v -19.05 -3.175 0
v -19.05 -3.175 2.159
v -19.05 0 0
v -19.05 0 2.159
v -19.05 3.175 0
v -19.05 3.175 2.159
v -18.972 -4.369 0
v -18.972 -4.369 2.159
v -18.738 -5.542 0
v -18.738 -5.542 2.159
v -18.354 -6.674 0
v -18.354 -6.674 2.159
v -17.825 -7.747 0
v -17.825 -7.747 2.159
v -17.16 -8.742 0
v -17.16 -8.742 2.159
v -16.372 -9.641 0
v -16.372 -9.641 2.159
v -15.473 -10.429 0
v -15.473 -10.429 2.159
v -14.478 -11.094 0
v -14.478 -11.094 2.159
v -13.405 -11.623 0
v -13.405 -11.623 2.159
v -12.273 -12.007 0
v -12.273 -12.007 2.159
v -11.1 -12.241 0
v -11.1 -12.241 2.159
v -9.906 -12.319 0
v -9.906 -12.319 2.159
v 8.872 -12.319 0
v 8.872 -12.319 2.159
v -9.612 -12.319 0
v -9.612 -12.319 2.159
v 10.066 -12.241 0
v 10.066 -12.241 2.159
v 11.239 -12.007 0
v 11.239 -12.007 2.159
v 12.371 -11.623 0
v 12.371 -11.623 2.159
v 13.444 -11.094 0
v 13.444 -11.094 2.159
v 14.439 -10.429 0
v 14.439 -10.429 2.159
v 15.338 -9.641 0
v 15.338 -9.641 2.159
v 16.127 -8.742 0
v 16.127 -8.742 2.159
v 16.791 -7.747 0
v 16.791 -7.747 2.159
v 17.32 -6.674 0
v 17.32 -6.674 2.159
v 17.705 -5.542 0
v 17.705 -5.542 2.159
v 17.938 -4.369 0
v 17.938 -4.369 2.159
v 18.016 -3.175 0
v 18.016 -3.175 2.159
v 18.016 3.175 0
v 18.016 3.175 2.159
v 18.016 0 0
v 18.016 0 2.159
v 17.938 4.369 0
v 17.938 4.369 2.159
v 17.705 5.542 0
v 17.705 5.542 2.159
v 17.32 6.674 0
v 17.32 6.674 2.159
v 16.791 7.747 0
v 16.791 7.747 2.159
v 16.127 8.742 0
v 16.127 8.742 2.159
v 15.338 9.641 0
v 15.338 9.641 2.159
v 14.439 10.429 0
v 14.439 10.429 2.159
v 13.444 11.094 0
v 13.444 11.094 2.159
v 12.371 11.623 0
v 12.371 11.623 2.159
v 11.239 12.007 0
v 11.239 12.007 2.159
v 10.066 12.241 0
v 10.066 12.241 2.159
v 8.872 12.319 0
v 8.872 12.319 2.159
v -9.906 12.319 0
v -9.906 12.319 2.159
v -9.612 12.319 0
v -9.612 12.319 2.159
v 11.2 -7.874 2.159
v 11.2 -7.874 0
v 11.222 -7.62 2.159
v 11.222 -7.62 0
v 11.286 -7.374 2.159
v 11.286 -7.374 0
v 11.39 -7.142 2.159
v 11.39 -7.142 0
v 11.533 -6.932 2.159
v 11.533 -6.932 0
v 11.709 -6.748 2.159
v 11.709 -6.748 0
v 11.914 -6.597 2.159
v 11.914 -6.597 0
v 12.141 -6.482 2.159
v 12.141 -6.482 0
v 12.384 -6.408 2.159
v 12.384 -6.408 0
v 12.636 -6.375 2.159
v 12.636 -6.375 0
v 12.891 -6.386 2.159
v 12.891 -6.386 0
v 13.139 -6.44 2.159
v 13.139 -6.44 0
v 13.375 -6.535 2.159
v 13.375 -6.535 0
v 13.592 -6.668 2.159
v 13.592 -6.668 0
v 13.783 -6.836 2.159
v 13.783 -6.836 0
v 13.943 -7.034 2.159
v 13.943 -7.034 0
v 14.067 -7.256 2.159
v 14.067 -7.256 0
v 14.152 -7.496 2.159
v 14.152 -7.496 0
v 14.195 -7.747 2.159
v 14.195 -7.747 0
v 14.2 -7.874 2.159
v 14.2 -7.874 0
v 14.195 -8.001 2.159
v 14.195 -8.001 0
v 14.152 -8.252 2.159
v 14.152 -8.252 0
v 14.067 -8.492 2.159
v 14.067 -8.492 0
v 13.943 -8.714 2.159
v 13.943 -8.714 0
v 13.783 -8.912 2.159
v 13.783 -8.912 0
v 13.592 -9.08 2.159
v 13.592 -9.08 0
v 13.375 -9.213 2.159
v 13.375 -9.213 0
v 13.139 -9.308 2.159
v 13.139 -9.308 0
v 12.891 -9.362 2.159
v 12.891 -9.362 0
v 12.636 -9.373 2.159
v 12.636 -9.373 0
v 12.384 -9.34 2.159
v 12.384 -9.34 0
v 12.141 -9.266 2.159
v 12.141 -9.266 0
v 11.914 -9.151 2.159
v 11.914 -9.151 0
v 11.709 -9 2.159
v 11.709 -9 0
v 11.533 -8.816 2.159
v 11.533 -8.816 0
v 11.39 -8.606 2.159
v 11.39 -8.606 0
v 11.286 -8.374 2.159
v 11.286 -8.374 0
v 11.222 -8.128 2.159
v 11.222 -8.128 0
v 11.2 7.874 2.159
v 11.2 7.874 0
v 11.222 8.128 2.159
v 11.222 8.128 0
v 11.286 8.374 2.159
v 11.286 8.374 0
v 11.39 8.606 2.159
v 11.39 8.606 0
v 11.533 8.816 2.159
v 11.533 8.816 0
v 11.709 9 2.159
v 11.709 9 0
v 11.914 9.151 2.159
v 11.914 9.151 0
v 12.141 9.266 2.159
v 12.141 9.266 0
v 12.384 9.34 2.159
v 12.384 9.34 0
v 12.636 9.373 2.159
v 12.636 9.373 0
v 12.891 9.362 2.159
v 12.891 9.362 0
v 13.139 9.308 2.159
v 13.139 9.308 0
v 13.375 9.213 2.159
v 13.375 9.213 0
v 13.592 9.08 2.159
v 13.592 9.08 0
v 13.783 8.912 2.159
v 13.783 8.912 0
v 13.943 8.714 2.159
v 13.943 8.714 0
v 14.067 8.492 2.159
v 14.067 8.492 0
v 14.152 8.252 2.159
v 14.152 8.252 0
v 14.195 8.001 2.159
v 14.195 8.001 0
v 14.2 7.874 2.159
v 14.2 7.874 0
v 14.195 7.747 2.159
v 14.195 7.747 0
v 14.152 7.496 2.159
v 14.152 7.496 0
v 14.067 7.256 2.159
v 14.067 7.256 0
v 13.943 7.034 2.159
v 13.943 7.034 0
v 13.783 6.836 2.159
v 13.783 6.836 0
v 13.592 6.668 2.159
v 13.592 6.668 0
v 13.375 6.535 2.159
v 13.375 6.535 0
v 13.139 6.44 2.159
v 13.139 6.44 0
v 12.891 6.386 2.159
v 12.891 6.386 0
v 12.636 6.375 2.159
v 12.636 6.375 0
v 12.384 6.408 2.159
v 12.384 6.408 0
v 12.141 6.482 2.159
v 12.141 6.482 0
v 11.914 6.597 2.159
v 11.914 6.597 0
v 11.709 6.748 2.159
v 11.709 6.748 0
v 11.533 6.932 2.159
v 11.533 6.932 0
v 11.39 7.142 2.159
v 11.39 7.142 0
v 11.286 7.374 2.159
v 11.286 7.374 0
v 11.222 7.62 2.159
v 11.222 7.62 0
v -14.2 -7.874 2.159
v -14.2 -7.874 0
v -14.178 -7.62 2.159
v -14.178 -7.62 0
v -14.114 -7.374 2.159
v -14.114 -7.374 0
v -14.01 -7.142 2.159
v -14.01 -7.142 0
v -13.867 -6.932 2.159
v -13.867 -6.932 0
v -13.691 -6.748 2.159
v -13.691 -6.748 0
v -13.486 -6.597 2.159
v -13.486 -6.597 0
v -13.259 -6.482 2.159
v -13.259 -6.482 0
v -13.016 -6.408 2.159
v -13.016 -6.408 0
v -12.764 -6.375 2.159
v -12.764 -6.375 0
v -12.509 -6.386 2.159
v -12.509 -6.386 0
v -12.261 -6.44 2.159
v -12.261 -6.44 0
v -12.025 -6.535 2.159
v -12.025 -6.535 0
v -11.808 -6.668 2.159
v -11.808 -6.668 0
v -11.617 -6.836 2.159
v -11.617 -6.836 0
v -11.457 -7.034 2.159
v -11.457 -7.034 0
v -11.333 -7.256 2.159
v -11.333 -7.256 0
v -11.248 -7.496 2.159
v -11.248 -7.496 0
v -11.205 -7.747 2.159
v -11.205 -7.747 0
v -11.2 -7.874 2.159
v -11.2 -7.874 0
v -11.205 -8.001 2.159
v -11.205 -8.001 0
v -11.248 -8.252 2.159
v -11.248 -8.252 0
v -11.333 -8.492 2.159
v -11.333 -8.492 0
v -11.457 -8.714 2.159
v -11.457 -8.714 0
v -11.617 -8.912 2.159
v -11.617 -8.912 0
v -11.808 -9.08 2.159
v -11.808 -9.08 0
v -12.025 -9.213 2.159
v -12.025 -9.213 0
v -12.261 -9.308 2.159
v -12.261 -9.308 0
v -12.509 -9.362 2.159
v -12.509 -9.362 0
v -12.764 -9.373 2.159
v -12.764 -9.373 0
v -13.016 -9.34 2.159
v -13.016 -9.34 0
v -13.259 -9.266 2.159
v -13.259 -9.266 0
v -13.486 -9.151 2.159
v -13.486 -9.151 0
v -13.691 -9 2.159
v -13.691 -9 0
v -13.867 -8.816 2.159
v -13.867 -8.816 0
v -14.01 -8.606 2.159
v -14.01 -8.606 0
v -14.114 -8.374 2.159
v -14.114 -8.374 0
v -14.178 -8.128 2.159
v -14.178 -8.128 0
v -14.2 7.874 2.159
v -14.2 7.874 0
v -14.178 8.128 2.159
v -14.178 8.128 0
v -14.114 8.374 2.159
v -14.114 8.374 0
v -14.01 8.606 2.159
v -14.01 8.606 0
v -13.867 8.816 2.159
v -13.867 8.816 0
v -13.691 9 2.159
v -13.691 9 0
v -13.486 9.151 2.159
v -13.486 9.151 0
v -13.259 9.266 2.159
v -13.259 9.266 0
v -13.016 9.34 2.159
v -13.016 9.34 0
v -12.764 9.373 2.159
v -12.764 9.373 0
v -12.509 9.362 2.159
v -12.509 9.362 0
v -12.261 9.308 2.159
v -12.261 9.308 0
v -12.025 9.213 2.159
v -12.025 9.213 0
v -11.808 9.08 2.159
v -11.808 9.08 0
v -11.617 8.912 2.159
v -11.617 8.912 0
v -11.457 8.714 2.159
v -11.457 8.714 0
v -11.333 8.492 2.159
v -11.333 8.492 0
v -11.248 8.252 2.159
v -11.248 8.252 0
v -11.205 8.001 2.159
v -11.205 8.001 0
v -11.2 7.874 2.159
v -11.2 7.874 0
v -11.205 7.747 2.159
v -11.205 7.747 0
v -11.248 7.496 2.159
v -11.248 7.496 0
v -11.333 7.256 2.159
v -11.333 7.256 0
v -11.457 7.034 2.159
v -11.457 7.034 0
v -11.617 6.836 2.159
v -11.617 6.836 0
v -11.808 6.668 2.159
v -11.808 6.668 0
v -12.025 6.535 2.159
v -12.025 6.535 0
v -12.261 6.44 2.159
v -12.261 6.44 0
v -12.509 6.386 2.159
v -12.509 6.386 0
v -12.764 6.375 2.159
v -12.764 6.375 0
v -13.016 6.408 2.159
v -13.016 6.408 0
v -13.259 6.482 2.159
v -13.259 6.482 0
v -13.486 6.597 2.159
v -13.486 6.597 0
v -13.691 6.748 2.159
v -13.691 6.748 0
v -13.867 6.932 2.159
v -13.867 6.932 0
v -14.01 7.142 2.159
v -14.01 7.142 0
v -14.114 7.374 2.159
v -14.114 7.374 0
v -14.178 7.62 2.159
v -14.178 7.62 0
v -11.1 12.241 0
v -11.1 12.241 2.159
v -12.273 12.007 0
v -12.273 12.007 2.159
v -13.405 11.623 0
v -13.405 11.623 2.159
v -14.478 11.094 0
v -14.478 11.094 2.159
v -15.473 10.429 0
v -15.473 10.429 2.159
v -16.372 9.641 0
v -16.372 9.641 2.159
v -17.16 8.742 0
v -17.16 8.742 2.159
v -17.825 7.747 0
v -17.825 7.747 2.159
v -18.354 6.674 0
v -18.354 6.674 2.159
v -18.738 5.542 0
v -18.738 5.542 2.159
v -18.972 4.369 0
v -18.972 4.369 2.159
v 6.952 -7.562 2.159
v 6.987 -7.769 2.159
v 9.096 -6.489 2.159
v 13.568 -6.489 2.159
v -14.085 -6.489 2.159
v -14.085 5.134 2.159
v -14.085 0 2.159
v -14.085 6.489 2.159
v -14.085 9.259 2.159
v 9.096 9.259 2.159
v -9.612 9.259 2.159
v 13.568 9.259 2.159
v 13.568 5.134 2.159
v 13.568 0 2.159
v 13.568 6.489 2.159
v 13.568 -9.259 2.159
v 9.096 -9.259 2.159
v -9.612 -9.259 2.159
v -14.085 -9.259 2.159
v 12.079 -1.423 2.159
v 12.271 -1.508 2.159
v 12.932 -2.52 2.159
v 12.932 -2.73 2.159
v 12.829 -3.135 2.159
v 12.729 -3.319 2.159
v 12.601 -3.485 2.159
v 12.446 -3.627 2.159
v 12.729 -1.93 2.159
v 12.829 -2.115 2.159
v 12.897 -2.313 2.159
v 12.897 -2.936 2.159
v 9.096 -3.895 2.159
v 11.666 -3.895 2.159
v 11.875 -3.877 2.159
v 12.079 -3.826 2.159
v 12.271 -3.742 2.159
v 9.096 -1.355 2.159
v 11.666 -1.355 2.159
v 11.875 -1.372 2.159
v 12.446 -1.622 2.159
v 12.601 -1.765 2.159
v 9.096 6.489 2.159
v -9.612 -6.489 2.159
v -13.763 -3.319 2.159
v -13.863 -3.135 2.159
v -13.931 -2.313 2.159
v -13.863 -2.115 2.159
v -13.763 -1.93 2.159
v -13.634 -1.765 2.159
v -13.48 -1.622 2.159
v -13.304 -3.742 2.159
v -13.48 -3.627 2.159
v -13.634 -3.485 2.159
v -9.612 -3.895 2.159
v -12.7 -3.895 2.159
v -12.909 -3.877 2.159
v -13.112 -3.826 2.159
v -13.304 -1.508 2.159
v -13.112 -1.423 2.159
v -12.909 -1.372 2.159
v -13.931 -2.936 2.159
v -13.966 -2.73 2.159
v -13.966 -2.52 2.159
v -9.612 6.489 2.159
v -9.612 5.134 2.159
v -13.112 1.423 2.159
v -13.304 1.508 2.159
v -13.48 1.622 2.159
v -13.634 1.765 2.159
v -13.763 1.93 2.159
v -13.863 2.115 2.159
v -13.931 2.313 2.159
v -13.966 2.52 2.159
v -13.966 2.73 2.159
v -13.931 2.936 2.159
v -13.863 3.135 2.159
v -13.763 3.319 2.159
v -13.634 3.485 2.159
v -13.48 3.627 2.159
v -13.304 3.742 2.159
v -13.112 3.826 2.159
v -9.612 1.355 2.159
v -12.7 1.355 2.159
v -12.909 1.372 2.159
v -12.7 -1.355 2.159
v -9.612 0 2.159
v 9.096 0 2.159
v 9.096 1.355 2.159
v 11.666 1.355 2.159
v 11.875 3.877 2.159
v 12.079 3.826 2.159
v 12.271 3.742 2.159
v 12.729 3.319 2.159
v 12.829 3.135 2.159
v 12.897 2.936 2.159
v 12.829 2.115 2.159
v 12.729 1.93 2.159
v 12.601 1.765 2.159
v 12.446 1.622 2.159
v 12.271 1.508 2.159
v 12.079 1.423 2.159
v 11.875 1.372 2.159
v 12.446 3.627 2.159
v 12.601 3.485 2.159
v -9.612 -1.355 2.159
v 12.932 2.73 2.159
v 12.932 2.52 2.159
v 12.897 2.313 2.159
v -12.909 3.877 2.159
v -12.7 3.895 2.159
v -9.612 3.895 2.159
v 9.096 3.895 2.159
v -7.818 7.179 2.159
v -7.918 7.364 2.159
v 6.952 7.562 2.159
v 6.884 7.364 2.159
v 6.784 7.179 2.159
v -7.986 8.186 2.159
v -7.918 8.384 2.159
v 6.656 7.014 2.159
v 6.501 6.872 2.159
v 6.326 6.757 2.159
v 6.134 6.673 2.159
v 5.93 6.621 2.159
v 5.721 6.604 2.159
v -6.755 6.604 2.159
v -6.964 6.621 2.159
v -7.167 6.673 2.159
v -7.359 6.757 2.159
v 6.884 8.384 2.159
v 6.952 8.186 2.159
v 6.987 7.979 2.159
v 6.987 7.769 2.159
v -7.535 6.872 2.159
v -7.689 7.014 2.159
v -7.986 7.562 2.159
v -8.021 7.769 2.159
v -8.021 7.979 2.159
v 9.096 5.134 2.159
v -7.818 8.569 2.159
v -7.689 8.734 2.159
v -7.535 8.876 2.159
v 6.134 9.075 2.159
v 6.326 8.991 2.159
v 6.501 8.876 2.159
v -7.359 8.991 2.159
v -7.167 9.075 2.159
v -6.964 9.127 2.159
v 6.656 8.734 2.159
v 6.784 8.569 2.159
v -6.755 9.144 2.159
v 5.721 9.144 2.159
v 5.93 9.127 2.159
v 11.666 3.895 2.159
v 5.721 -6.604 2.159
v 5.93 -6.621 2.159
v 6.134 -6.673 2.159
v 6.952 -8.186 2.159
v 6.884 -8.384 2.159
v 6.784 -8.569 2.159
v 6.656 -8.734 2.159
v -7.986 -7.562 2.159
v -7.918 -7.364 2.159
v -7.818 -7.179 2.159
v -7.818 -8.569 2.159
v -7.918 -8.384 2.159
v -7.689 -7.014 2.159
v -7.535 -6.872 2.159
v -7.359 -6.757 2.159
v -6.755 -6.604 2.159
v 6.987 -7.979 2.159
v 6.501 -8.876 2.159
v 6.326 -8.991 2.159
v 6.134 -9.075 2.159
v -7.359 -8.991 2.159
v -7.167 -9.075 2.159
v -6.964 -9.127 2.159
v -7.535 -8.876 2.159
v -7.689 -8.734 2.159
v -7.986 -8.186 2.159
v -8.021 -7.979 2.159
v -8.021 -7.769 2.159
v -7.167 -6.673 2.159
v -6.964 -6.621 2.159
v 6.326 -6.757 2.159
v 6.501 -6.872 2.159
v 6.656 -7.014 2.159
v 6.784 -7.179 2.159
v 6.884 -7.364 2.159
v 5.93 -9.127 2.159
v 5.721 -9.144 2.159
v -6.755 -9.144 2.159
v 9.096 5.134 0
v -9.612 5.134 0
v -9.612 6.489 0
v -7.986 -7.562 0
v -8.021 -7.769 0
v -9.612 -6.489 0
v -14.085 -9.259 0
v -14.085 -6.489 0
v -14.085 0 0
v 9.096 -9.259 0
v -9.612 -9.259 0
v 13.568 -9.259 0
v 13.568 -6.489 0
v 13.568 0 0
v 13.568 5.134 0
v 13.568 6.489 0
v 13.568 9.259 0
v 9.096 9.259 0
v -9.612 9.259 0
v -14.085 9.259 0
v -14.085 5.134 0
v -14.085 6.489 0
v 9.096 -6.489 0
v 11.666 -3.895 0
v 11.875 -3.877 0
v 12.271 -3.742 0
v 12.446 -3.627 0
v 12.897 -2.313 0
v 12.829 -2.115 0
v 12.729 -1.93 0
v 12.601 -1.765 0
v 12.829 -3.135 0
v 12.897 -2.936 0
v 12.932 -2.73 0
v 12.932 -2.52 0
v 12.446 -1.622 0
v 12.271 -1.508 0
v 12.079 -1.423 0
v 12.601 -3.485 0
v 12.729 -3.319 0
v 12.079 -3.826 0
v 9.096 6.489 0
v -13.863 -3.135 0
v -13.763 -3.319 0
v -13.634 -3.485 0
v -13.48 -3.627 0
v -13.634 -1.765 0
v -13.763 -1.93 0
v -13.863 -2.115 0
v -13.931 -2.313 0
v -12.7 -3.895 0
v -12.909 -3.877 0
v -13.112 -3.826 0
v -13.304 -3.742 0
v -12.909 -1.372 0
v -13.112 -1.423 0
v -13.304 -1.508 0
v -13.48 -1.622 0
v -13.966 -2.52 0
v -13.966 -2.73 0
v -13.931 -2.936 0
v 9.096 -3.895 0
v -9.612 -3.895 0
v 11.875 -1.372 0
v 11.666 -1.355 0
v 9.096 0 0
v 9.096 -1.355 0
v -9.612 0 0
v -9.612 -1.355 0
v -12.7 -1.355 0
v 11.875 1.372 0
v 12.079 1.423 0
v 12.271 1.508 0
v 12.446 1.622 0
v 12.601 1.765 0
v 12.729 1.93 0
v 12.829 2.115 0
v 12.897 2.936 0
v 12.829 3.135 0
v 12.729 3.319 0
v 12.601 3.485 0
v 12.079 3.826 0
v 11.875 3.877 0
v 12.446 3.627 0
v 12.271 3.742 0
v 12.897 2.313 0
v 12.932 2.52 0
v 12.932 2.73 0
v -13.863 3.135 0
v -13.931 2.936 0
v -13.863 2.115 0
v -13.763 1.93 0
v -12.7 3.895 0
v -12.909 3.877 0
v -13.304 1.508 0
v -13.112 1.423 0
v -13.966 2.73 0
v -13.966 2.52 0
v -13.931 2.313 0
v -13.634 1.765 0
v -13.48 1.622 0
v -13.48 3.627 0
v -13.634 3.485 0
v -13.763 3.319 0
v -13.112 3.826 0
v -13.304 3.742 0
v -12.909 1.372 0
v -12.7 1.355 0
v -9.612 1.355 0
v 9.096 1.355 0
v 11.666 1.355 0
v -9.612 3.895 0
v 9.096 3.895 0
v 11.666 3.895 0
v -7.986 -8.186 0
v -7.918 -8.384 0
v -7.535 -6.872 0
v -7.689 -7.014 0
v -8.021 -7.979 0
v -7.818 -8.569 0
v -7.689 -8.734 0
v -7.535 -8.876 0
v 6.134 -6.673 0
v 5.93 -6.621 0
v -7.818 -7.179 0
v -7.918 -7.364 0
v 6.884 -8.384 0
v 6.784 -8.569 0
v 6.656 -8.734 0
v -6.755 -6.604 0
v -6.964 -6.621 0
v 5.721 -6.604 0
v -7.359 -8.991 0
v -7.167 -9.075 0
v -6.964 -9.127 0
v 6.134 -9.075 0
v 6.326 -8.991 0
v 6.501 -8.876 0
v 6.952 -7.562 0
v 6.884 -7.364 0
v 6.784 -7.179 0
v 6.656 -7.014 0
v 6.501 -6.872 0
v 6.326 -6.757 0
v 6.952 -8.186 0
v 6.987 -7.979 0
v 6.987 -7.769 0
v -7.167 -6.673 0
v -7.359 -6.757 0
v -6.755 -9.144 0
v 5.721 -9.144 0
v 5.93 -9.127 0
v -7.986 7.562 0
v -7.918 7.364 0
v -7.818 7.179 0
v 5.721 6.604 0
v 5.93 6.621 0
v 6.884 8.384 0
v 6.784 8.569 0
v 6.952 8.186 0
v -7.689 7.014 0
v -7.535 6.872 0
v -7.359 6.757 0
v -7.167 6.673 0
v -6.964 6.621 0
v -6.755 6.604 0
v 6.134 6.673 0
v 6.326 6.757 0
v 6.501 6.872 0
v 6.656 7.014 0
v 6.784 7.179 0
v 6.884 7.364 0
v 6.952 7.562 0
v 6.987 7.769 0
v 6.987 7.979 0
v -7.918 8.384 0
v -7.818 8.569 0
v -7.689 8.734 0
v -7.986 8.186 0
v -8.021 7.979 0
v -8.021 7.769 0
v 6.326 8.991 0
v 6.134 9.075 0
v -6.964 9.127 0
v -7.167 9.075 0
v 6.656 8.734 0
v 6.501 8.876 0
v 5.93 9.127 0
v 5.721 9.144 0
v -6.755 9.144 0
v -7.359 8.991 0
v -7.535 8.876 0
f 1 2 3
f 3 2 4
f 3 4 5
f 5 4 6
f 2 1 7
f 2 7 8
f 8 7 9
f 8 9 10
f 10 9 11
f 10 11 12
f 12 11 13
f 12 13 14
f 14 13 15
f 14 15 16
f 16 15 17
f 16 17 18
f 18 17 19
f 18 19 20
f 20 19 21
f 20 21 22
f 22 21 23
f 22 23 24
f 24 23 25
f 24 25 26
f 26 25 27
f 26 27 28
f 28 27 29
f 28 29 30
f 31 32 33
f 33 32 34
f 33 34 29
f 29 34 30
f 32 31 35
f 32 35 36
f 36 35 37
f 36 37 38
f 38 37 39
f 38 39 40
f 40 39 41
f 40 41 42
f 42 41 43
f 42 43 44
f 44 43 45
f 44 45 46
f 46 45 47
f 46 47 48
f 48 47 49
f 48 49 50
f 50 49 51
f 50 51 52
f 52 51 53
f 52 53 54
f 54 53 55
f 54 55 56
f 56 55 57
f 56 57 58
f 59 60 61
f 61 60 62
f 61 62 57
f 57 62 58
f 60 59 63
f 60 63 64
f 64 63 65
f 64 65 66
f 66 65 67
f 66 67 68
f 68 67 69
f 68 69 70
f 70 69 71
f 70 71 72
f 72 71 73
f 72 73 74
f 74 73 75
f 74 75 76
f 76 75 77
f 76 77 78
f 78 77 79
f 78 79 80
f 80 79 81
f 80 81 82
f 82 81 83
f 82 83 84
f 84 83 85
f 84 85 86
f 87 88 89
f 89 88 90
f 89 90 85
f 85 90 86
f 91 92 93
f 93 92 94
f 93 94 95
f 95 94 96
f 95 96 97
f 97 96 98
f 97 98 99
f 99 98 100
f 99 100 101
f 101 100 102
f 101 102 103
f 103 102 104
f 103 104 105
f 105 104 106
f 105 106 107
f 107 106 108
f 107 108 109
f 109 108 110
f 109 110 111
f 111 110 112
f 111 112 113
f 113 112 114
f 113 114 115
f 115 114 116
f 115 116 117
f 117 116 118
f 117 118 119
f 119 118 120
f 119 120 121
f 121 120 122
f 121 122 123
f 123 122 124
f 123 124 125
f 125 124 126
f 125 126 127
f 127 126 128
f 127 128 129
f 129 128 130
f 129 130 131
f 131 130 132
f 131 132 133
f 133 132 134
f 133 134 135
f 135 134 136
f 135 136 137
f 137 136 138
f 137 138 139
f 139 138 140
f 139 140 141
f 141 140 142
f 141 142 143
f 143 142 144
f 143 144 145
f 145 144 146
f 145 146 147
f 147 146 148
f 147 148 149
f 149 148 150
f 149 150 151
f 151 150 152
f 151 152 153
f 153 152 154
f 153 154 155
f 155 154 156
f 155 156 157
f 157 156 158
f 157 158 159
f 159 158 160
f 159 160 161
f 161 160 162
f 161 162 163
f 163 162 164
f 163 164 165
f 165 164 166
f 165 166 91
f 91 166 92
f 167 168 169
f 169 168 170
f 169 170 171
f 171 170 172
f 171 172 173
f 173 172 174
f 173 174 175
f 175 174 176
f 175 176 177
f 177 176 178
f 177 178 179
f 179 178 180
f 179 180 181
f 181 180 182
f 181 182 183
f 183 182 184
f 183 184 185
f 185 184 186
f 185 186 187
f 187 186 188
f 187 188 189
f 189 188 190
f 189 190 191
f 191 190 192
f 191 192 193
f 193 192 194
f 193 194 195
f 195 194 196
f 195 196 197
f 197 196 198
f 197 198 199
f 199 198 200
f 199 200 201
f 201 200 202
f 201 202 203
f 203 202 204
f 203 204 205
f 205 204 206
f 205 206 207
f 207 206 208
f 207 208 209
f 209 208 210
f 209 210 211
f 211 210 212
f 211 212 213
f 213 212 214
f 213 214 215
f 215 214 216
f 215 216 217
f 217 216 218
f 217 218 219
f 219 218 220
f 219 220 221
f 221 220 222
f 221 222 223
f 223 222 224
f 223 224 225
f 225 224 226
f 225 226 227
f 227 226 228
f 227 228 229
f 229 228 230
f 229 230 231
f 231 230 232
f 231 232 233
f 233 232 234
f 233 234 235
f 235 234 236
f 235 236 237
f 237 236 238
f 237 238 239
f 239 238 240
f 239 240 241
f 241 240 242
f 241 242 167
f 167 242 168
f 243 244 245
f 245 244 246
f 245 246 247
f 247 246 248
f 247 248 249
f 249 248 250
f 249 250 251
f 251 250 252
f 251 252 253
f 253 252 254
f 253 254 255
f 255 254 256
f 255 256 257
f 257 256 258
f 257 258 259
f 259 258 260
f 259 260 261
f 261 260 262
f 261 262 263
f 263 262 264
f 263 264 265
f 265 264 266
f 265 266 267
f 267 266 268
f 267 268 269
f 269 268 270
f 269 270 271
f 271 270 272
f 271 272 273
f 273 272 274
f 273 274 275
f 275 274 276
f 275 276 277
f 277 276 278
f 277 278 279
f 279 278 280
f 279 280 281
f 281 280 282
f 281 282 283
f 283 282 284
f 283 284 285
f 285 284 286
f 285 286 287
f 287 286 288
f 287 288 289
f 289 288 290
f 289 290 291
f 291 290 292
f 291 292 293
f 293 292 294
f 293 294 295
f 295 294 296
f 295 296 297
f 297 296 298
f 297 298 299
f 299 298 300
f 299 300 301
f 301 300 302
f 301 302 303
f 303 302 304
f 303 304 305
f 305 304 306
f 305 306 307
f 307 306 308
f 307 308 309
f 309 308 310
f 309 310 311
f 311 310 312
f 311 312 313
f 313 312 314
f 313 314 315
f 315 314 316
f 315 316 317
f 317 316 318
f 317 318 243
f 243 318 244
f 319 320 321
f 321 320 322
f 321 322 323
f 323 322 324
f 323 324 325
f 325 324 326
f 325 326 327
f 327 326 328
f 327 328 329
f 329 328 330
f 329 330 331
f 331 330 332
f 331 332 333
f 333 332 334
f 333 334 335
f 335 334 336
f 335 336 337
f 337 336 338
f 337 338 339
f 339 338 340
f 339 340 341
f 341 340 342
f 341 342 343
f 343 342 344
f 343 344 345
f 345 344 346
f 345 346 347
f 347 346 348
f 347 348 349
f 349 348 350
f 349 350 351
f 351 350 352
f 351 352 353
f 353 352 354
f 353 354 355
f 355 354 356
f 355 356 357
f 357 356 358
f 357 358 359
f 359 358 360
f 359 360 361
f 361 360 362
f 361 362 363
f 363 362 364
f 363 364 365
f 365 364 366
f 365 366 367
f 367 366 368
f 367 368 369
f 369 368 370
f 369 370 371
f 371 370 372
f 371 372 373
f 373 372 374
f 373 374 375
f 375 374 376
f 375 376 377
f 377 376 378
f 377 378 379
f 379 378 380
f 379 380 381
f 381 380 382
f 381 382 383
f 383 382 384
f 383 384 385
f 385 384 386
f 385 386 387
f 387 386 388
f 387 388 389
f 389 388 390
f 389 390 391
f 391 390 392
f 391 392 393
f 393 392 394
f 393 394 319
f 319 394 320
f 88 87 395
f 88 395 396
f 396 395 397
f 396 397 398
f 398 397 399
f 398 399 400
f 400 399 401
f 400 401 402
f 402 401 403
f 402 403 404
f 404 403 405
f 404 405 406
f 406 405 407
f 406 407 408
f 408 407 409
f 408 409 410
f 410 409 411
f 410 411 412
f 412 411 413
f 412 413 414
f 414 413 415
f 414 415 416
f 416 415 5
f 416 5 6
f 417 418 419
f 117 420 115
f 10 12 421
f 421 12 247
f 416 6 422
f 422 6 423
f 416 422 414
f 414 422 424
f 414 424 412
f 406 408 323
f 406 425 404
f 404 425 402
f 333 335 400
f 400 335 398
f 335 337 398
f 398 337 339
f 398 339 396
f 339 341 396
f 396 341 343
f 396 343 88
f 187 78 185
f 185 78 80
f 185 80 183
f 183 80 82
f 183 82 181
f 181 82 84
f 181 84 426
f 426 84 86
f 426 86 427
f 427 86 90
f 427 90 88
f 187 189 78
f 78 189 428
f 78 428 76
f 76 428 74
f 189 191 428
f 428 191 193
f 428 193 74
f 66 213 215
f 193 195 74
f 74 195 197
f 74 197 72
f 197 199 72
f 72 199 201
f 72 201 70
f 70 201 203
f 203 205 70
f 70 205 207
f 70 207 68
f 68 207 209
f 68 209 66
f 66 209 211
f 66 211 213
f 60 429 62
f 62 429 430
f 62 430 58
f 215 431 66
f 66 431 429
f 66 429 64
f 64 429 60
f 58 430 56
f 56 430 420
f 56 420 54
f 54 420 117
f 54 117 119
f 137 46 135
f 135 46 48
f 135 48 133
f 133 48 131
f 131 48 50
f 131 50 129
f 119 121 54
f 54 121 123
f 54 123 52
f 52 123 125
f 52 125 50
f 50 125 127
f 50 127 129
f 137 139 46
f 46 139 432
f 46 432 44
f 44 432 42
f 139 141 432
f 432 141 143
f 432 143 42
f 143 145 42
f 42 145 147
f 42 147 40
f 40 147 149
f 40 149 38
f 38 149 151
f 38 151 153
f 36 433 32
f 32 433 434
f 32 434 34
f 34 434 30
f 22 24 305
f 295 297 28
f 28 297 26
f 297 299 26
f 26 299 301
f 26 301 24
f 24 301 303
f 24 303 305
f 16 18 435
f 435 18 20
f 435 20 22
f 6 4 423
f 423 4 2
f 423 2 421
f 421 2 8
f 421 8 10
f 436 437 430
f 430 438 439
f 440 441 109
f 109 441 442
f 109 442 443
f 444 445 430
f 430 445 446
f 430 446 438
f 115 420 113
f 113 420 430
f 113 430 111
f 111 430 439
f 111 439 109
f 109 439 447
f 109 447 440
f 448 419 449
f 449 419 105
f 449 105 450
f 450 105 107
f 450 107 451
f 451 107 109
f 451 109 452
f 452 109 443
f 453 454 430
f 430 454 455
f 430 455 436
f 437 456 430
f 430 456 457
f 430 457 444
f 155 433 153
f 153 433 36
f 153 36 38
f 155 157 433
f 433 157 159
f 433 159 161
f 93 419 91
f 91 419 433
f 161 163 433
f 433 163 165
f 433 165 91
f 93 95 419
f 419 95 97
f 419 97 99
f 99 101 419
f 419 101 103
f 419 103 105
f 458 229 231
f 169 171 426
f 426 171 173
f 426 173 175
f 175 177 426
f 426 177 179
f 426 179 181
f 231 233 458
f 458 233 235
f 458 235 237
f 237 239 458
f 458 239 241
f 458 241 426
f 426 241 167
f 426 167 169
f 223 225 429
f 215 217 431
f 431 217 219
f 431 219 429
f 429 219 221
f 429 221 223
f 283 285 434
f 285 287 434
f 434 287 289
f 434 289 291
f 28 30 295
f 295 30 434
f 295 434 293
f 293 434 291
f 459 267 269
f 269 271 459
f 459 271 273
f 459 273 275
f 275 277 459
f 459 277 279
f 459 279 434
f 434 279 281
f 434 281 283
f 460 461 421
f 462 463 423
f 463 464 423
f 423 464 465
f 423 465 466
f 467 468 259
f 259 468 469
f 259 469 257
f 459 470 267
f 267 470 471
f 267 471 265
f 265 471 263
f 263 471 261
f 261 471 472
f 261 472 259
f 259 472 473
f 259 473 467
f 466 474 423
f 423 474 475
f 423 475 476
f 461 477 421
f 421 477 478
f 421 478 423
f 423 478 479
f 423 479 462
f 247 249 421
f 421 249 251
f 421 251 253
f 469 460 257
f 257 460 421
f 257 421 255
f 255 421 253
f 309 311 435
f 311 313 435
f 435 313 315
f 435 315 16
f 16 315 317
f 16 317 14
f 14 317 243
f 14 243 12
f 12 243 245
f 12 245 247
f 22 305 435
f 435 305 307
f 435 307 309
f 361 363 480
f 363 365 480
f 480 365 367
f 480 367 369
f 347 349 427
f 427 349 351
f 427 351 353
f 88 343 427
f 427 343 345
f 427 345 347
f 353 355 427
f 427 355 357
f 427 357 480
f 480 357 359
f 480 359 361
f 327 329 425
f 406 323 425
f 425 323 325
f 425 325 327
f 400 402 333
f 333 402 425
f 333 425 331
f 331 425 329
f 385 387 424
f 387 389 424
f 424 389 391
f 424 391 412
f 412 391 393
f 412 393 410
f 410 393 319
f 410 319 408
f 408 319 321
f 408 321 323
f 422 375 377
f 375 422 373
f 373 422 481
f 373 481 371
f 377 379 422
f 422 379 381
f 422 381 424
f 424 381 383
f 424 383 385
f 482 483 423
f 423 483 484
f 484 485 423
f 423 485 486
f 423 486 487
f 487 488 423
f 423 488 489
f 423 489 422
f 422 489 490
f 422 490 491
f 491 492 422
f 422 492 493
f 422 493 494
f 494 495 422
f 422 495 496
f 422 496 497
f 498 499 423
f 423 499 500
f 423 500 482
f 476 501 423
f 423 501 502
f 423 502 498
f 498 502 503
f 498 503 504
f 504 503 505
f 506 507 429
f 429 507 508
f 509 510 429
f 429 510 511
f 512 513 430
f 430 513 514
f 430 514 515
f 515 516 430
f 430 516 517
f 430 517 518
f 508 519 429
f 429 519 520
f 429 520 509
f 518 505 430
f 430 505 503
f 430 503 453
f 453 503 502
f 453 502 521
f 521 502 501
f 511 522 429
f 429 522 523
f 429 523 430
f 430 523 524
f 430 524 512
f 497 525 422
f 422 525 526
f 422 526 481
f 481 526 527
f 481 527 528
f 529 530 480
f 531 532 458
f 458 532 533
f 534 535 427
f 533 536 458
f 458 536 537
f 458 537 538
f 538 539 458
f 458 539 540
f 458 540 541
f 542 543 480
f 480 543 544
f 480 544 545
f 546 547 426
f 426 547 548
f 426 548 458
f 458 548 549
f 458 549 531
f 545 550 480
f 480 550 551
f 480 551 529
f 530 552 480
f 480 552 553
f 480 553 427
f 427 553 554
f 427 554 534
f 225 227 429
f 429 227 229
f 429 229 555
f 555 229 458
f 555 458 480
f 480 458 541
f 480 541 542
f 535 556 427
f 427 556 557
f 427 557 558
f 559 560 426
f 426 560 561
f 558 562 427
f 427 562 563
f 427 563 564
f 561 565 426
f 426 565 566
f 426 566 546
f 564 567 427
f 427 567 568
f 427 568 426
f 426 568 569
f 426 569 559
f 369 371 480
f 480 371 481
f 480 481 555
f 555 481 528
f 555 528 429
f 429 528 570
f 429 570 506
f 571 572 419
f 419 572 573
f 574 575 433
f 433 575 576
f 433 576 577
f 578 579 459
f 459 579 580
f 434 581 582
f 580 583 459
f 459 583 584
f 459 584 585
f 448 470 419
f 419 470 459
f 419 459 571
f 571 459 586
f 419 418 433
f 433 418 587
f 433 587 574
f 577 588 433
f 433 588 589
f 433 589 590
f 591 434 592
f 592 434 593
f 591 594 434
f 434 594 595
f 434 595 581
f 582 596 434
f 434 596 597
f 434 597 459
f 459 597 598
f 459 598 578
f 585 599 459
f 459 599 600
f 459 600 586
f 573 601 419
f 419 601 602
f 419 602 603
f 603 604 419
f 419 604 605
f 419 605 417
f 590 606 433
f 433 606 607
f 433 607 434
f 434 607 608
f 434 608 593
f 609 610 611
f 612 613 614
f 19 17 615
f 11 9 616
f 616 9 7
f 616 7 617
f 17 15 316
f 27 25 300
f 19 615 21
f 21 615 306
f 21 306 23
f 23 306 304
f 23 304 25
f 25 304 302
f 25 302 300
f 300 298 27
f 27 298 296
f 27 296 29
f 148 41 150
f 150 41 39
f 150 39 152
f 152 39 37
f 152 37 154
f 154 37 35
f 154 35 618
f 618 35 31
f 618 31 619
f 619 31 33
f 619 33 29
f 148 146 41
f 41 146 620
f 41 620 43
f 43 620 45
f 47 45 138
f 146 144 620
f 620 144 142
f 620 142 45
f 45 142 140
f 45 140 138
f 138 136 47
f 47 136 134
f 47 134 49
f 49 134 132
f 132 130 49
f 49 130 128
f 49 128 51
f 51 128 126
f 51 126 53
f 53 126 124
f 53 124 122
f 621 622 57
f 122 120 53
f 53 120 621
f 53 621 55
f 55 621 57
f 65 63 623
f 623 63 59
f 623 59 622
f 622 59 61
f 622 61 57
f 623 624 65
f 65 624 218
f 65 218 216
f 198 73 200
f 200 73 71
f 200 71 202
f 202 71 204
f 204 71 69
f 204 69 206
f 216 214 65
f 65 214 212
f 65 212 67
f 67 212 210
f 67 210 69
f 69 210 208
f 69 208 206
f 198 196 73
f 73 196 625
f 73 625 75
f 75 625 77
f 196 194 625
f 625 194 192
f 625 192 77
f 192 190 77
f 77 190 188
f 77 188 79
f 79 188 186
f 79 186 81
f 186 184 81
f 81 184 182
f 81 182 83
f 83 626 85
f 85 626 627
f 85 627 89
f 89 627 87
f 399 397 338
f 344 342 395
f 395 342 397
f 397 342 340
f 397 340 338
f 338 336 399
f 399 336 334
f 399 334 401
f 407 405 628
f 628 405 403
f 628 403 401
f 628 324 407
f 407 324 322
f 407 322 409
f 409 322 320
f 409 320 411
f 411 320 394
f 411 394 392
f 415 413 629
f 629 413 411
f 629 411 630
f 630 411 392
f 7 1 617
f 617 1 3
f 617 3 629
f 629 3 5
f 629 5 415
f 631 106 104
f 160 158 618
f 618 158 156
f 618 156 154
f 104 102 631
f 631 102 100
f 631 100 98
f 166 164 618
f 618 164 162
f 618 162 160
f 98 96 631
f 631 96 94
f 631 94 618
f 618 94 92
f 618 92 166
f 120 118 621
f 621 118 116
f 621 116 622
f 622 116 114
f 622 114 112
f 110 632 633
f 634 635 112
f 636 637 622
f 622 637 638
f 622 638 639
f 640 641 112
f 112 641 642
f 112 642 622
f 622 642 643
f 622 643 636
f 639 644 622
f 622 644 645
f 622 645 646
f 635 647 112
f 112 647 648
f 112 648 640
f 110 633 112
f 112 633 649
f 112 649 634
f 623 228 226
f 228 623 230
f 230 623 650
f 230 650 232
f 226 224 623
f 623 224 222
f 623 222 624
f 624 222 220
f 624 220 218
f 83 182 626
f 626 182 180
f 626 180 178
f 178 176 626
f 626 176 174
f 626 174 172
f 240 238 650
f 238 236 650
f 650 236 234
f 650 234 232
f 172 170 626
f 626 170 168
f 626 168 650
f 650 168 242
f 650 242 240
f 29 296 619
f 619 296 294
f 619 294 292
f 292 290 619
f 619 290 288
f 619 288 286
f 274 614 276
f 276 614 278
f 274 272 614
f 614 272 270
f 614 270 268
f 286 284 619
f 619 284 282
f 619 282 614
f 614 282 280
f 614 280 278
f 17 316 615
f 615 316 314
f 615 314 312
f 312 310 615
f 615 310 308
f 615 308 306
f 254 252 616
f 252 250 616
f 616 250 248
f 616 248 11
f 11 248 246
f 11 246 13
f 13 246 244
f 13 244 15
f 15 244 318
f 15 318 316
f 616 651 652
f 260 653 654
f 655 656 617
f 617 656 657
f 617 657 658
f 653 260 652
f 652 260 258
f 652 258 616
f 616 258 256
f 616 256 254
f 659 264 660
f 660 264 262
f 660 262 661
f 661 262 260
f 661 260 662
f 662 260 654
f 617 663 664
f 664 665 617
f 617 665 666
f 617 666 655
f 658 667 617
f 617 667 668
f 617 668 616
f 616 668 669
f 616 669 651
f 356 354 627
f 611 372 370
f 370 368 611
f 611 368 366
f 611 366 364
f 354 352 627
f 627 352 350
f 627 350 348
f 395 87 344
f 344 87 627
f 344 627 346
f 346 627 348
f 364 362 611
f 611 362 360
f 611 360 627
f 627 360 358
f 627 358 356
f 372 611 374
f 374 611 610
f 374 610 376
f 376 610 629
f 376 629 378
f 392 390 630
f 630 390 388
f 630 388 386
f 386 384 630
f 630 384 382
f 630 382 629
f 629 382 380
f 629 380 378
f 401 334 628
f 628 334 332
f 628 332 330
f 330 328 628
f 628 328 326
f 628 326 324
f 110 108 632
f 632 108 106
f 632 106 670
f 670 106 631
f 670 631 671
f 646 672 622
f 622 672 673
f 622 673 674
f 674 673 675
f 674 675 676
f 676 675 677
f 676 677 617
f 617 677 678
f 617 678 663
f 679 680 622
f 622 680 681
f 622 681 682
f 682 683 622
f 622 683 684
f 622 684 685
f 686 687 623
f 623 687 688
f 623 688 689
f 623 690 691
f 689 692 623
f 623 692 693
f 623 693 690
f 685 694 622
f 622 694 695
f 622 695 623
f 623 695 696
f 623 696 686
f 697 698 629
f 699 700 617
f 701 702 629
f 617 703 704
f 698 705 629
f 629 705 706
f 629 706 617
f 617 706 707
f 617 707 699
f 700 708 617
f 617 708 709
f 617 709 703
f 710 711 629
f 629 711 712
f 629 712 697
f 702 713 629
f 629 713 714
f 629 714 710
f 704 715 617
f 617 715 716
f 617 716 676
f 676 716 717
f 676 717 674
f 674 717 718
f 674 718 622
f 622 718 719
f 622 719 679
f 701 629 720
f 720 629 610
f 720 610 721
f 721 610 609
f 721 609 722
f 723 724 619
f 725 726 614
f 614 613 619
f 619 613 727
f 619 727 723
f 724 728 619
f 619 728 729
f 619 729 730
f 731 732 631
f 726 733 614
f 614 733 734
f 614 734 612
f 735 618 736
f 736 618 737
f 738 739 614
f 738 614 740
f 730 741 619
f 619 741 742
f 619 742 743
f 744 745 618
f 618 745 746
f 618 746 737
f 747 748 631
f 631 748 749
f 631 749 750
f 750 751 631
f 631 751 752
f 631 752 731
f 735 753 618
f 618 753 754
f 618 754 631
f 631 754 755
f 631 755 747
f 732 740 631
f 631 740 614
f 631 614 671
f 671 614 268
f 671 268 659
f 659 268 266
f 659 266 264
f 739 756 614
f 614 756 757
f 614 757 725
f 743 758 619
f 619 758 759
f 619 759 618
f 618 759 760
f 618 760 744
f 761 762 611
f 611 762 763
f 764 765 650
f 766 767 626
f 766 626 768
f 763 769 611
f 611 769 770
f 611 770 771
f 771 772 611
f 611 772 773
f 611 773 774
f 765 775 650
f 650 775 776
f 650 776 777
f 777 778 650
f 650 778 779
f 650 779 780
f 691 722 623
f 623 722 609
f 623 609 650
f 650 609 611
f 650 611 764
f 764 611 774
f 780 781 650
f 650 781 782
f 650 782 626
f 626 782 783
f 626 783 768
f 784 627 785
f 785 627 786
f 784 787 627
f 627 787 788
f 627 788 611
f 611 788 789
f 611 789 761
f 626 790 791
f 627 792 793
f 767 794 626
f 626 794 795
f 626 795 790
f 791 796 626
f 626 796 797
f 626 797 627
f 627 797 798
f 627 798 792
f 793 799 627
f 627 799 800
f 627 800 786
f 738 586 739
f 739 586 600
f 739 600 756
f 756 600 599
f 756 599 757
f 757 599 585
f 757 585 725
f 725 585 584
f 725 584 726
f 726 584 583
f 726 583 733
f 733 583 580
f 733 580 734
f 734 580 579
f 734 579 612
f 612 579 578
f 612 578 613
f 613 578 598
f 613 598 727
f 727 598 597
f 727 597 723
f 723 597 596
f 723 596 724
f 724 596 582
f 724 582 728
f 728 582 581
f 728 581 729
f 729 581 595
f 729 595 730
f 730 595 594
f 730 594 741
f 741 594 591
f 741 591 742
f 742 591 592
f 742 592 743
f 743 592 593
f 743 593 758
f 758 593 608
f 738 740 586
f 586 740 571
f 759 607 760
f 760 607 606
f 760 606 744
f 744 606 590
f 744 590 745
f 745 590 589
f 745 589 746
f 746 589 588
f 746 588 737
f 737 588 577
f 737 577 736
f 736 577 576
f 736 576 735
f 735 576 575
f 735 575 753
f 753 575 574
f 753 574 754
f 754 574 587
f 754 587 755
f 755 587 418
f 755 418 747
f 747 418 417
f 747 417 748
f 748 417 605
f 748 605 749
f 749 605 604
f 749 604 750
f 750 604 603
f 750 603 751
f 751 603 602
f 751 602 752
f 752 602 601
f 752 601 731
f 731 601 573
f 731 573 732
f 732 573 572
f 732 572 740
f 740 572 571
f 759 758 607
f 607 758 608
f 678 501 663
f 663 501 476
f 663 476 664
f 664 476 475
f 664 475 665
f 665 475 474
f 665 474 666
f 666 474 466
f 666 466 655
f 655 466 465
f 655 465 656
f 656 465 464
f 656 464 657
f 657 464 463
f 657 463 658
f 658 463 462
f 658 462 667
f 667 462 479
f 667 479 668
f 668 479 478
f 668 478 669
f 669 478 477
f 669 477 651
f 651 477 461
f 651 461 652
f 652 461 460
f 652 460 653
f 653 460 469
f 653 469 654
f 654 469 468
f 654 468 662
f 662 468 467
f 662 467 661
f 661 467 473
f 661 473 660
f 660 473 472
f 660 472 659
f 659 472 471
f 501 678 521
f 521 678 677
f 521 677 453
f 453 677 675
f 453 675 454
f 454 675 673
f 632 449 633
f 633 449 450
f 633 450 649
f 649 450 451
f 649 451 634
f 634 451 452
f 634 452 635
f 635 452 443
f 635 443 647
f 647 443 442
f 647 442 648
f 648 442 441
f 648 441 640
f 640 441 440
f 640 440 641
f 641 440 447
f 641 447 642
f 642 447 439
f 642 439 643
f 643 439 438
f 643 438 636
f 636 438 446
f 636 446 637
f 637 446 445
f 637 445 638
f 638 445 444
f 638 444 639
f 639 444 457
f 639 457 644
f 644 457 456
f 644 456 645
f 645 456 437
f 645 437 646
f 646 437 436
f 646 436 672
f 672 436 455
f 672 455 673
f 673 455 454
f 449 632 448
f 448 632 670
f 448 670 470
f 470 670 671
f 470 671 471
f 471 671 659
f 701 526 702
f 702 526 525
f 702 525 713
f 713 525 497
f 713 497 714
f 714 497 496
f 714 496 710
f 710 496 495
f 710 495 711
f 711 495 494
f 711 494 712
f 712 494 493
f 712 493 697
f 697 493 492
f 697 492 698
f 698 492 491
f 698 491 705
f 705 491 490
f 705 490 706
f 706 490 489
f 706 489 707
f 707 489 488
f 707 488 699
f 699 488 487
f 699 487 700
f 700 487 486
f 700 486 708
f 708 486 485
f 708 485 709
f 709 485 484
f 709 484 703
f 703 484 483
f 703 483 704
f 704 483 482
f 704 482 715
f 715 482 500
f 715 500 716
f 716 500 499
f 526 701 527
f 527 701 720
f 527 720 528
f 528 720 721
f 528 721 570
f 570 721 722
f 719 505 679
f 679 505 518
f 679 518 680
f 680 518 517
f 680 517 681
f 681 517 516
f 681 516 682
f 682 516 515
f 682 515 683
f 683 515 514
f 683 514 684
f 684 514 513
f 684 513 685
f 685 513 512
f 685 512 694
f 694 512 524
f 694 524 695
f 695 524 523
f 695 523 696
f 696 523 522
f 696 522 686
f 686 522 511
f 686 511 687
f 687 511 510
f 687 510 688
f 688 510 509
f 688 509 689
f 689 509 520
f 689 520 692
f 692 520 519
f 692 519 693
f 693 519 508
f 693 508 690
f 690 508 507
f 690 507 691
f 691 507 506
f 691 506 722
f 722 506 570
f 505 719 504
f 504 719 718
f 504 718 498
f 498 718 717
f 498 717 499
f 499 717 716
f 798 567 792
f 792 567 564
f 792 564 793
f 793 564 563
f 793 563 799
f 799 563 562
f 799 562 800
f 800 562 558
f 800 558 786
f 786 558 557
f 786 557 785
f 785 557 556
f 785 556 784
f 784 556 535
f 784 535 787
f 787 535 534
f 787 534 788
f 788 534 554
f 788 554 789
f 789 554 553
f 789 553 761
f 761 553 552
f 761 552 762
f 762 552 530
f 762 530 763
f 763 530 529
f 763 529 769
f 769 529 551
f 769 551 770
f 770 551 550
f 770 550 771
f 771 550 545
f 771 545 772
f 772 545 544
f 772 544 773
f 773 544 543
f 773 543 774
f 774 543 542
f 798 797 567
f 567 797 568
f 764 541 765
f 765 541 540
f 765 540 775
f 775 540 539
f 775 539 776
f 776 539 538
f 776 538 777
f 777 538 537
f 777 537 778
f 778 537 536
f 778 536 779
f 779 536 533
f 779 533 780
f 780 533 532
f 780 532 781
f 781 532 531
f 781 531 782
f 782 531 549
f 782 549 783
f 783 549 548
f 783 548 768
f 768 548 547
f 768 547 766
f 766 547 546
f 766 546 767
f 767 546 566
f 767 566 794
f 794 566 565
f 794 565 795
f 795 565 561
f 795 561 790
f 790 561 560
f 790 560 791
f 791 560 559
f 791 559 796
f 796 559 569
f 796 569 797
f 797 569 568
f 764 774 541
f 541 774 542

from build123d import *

# Parameters (mm, degrees)
SKETCH1_R           = 1.5
BOSS_EXTRUDE1_DEPTH = 2.159
CUT_EXTRUDE1_DEPTH  = 3.159


with BuildPart() as part:
    # Sketch1 → Boss-Extrude1 (new body)
    with BuildSketch(Plane.XY):
        with BuildLine():
            Line((-9.906, 12.319), (8.872225801, 12.319))
            ThreePointArc((8.872225801, 12.319), (15.338010208, 9.640784407), (18.016225801, 3.175))
            Line((18.016225801, 3.175), (18.016225801, -3.175))
            ThreePointArc((18.016225801, -3.175), (15.338010208, -9.640784407), (8.872225801, -12.319))
            Line((8.872225801, -12.319), (-9.906, -12.319))
            ThreePointArc((-9.906, -12.319), (-16.371784407, -9.640784407), (-19.05, -3.175))
            Line((-19.05, -3.175), (-19.05, 3.175))
            ThreePointArc((-19.05, 3.175), (-16.371784407, 9.640784407), (-9.906, 12.319))
        make_face()
        with Locations((-12.7, 7.874)):
            Circle(SKETCH1_R, mode=Mode.SUBTRACT)
        with Locations((-12.7, -7.874)):
            Circle(SKETCH1_R, mode=Mode.SUBTRACT)
        with Locations((12.7, 7.874)):
            Circle(SKETCH1_R, mode=Mode.SUBTRACT)
        with Locations((12.7, -7.874)):
            Circle(SKETCH1_R, mode=Mode.SUBTRACT)
    extrude(amount=BOSS_EXTRUDE1_DEPTH)

    # Sketch4 → Cut-Extrude1 (cut, through all)
    with BuildSketch(Plane.XY.offset(2.159)):
        with BuildLine():
            Line((-6.755, 9.144), (5.721225801, 9.144))
            ThreePointArc((5.721225801, 9.144), (6.991225801, 7.874), (5.721225801, 6.604))
            Line((5.721225801, 6.604), (-6.755, 6.604))
            ThreePointArc((-6.755, 6.604), (-8.025, 7.874), (-6.755, 9.144))
        make_face()
        with BuildLine():
            Line((-12.7, 3.894666667), (11.666225801, 3.894666667))
            ThreePointArc((11.666225801, 3.894666667), (12.936225801, 2.624666667), (11.666225801, 1.354666667))
            Line((11.666225801, 1.354666667), (-12.7, 1.354666667))
            ThreePointArc((-12.7, 1.354666667), (-13.97, 2.624666667), (-12.7, 3.894666667))
        make_face()
        with BuildLine():
            Line((-12.7, -1.354666667), (11.666225801, -1.354666667))
            ThreePointArc((11.666225801, -1.354666667), (12.936225801, -2.624666667), (11.666225801, -3.894666667))
            Line((11.666225801, -3.894666667), (-12.7, -3.894666667))
            ThreePointArc((-12.7, -3.894666667), (-13.97, -2.624666667), (-12.7, -1.354666667))
        make_face()
        with BuildLine():
            Line((-6.755, -6.604), (5.721225801, -6.604))
            ThreePointArc((5.721225801, -6.604), (6.991225801, -7.874), (5.721225801, -9.144))
            Line((5.721225801, -9.144), (-6.755, -9.144))
            ThreePointArc((-6.755, -9.144), (-8.025, -7.874), (-6.755, -6.604))
        make_face()
    extrude(amount=-CUT_EXTRUDE1_DEPTH, mode=Mode.SUBTRACT)


solid = part.part
